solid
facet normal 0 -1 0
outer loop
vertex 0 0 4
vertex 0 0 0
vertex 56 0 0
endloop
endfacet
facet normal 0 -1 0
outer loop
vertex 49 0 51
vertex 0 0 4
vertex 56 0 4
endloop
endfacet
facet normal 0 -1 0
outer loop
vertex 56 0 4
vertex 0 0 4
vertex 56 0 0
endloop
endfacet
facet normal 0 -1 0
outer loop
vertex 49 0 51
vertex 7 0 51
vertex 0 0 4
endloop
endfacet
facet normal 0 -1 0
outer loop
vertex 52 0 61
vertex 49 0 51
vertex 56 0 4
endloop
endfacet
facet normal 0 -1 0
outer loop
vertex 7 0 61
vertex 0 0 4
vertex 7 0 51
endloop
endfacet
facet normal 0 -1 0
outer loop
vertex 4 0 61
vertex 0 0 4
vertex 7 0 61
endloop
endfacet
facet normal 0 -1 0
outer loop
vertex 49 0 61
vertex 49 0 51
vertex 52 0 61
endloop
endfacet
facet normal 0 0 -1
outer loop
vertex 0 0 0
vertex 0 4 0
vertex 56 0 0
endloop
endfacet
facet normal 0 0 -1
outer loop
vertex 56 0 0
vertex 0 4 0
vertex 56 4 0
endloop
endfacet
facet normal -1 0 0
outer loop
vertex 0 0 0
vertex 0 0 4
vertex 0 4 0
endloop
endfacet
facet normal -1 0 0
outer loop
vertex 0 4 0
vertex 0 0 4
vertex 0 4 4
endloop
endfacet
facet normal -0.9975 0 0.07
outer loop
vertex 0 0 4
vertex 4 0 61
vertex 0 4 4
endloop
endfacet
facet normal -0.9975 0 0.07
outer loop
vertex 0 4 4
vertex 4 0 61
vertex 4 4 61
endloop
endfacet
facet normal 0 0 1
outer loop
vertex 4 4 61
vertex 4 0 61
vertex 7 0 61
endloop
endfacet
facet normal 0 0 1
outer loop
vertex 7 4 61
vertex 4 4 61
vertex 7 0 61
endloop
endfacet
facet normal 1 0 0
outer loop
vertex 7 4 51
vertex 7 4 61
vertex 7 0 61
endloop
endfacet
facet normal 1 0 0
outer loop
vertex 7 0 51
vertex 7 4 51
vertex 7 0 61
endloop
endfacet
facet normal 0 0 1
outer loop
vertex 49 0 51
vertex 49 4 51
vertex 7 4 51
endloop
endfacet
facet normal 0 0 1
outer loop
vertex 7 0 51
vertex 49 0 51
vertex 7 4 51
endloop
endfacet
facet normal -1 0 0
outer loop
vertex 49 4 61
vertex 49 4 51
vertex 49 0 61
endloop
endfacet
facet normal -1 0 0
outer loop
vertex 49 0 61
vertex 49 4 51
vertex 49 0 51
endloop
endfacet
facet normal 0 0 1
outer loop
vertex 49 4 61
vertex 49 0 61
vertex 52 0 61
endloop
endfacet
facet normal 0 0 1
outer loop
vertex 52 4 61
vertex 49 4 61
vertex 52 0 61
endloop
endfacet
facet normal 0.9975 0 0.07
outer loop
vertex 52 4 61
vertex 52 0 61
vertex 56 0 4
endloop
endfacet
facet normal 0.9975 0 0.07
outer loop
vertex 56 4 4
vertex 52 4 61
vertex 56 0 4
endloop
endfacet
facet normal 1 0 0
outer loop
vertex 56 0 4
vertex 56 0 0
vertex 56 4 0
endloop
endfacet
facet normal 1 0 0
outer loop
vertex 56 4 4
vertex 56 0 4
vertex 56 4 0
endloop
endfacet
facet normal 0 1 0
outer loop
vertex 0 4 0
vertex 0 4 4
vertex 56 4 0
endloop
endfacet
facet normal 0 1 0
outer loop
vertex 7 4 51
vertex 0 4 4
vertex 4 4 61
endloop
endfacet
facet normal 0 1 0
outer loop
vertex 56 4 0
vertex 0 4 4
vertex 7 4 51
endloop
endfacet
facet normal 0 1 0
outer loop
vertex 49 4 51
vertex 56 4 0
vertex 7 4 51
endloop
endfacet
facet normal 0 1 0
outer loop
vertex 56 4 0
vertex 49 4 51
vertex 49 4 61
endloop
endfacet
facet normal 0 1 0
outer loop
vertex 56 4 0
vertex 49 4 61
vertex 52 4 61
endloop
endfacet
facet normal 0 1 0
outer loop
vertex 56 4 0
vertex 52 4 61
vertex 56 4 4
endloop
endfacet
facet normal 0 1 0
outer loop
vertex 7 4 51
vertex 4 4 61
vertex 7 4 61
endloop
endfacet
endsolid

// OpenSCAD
deck=42;
side=3;
floor=51;
slope=4;
depth=10;

thickness = 4;

w=1.2;

difference() {
hull() {
cube([deck+2*side+slope*2, thickness, thickness]);
translate([slope, 0, floor]) cube([deck+2*side, thickness, depth]);
}

translate([slope+side, 0, floor]) cube([deck, thickness, depth]);


/*
hull() {
       translate([w, w, 2*w]) cube([deck+2*(side+slope-w), thickness-2*w, thickness]);
       translate([thickness+slope, w, floor-thickness]) cube([deck-2*slope, thickness-2*w,thickness]);
}
*/
}
